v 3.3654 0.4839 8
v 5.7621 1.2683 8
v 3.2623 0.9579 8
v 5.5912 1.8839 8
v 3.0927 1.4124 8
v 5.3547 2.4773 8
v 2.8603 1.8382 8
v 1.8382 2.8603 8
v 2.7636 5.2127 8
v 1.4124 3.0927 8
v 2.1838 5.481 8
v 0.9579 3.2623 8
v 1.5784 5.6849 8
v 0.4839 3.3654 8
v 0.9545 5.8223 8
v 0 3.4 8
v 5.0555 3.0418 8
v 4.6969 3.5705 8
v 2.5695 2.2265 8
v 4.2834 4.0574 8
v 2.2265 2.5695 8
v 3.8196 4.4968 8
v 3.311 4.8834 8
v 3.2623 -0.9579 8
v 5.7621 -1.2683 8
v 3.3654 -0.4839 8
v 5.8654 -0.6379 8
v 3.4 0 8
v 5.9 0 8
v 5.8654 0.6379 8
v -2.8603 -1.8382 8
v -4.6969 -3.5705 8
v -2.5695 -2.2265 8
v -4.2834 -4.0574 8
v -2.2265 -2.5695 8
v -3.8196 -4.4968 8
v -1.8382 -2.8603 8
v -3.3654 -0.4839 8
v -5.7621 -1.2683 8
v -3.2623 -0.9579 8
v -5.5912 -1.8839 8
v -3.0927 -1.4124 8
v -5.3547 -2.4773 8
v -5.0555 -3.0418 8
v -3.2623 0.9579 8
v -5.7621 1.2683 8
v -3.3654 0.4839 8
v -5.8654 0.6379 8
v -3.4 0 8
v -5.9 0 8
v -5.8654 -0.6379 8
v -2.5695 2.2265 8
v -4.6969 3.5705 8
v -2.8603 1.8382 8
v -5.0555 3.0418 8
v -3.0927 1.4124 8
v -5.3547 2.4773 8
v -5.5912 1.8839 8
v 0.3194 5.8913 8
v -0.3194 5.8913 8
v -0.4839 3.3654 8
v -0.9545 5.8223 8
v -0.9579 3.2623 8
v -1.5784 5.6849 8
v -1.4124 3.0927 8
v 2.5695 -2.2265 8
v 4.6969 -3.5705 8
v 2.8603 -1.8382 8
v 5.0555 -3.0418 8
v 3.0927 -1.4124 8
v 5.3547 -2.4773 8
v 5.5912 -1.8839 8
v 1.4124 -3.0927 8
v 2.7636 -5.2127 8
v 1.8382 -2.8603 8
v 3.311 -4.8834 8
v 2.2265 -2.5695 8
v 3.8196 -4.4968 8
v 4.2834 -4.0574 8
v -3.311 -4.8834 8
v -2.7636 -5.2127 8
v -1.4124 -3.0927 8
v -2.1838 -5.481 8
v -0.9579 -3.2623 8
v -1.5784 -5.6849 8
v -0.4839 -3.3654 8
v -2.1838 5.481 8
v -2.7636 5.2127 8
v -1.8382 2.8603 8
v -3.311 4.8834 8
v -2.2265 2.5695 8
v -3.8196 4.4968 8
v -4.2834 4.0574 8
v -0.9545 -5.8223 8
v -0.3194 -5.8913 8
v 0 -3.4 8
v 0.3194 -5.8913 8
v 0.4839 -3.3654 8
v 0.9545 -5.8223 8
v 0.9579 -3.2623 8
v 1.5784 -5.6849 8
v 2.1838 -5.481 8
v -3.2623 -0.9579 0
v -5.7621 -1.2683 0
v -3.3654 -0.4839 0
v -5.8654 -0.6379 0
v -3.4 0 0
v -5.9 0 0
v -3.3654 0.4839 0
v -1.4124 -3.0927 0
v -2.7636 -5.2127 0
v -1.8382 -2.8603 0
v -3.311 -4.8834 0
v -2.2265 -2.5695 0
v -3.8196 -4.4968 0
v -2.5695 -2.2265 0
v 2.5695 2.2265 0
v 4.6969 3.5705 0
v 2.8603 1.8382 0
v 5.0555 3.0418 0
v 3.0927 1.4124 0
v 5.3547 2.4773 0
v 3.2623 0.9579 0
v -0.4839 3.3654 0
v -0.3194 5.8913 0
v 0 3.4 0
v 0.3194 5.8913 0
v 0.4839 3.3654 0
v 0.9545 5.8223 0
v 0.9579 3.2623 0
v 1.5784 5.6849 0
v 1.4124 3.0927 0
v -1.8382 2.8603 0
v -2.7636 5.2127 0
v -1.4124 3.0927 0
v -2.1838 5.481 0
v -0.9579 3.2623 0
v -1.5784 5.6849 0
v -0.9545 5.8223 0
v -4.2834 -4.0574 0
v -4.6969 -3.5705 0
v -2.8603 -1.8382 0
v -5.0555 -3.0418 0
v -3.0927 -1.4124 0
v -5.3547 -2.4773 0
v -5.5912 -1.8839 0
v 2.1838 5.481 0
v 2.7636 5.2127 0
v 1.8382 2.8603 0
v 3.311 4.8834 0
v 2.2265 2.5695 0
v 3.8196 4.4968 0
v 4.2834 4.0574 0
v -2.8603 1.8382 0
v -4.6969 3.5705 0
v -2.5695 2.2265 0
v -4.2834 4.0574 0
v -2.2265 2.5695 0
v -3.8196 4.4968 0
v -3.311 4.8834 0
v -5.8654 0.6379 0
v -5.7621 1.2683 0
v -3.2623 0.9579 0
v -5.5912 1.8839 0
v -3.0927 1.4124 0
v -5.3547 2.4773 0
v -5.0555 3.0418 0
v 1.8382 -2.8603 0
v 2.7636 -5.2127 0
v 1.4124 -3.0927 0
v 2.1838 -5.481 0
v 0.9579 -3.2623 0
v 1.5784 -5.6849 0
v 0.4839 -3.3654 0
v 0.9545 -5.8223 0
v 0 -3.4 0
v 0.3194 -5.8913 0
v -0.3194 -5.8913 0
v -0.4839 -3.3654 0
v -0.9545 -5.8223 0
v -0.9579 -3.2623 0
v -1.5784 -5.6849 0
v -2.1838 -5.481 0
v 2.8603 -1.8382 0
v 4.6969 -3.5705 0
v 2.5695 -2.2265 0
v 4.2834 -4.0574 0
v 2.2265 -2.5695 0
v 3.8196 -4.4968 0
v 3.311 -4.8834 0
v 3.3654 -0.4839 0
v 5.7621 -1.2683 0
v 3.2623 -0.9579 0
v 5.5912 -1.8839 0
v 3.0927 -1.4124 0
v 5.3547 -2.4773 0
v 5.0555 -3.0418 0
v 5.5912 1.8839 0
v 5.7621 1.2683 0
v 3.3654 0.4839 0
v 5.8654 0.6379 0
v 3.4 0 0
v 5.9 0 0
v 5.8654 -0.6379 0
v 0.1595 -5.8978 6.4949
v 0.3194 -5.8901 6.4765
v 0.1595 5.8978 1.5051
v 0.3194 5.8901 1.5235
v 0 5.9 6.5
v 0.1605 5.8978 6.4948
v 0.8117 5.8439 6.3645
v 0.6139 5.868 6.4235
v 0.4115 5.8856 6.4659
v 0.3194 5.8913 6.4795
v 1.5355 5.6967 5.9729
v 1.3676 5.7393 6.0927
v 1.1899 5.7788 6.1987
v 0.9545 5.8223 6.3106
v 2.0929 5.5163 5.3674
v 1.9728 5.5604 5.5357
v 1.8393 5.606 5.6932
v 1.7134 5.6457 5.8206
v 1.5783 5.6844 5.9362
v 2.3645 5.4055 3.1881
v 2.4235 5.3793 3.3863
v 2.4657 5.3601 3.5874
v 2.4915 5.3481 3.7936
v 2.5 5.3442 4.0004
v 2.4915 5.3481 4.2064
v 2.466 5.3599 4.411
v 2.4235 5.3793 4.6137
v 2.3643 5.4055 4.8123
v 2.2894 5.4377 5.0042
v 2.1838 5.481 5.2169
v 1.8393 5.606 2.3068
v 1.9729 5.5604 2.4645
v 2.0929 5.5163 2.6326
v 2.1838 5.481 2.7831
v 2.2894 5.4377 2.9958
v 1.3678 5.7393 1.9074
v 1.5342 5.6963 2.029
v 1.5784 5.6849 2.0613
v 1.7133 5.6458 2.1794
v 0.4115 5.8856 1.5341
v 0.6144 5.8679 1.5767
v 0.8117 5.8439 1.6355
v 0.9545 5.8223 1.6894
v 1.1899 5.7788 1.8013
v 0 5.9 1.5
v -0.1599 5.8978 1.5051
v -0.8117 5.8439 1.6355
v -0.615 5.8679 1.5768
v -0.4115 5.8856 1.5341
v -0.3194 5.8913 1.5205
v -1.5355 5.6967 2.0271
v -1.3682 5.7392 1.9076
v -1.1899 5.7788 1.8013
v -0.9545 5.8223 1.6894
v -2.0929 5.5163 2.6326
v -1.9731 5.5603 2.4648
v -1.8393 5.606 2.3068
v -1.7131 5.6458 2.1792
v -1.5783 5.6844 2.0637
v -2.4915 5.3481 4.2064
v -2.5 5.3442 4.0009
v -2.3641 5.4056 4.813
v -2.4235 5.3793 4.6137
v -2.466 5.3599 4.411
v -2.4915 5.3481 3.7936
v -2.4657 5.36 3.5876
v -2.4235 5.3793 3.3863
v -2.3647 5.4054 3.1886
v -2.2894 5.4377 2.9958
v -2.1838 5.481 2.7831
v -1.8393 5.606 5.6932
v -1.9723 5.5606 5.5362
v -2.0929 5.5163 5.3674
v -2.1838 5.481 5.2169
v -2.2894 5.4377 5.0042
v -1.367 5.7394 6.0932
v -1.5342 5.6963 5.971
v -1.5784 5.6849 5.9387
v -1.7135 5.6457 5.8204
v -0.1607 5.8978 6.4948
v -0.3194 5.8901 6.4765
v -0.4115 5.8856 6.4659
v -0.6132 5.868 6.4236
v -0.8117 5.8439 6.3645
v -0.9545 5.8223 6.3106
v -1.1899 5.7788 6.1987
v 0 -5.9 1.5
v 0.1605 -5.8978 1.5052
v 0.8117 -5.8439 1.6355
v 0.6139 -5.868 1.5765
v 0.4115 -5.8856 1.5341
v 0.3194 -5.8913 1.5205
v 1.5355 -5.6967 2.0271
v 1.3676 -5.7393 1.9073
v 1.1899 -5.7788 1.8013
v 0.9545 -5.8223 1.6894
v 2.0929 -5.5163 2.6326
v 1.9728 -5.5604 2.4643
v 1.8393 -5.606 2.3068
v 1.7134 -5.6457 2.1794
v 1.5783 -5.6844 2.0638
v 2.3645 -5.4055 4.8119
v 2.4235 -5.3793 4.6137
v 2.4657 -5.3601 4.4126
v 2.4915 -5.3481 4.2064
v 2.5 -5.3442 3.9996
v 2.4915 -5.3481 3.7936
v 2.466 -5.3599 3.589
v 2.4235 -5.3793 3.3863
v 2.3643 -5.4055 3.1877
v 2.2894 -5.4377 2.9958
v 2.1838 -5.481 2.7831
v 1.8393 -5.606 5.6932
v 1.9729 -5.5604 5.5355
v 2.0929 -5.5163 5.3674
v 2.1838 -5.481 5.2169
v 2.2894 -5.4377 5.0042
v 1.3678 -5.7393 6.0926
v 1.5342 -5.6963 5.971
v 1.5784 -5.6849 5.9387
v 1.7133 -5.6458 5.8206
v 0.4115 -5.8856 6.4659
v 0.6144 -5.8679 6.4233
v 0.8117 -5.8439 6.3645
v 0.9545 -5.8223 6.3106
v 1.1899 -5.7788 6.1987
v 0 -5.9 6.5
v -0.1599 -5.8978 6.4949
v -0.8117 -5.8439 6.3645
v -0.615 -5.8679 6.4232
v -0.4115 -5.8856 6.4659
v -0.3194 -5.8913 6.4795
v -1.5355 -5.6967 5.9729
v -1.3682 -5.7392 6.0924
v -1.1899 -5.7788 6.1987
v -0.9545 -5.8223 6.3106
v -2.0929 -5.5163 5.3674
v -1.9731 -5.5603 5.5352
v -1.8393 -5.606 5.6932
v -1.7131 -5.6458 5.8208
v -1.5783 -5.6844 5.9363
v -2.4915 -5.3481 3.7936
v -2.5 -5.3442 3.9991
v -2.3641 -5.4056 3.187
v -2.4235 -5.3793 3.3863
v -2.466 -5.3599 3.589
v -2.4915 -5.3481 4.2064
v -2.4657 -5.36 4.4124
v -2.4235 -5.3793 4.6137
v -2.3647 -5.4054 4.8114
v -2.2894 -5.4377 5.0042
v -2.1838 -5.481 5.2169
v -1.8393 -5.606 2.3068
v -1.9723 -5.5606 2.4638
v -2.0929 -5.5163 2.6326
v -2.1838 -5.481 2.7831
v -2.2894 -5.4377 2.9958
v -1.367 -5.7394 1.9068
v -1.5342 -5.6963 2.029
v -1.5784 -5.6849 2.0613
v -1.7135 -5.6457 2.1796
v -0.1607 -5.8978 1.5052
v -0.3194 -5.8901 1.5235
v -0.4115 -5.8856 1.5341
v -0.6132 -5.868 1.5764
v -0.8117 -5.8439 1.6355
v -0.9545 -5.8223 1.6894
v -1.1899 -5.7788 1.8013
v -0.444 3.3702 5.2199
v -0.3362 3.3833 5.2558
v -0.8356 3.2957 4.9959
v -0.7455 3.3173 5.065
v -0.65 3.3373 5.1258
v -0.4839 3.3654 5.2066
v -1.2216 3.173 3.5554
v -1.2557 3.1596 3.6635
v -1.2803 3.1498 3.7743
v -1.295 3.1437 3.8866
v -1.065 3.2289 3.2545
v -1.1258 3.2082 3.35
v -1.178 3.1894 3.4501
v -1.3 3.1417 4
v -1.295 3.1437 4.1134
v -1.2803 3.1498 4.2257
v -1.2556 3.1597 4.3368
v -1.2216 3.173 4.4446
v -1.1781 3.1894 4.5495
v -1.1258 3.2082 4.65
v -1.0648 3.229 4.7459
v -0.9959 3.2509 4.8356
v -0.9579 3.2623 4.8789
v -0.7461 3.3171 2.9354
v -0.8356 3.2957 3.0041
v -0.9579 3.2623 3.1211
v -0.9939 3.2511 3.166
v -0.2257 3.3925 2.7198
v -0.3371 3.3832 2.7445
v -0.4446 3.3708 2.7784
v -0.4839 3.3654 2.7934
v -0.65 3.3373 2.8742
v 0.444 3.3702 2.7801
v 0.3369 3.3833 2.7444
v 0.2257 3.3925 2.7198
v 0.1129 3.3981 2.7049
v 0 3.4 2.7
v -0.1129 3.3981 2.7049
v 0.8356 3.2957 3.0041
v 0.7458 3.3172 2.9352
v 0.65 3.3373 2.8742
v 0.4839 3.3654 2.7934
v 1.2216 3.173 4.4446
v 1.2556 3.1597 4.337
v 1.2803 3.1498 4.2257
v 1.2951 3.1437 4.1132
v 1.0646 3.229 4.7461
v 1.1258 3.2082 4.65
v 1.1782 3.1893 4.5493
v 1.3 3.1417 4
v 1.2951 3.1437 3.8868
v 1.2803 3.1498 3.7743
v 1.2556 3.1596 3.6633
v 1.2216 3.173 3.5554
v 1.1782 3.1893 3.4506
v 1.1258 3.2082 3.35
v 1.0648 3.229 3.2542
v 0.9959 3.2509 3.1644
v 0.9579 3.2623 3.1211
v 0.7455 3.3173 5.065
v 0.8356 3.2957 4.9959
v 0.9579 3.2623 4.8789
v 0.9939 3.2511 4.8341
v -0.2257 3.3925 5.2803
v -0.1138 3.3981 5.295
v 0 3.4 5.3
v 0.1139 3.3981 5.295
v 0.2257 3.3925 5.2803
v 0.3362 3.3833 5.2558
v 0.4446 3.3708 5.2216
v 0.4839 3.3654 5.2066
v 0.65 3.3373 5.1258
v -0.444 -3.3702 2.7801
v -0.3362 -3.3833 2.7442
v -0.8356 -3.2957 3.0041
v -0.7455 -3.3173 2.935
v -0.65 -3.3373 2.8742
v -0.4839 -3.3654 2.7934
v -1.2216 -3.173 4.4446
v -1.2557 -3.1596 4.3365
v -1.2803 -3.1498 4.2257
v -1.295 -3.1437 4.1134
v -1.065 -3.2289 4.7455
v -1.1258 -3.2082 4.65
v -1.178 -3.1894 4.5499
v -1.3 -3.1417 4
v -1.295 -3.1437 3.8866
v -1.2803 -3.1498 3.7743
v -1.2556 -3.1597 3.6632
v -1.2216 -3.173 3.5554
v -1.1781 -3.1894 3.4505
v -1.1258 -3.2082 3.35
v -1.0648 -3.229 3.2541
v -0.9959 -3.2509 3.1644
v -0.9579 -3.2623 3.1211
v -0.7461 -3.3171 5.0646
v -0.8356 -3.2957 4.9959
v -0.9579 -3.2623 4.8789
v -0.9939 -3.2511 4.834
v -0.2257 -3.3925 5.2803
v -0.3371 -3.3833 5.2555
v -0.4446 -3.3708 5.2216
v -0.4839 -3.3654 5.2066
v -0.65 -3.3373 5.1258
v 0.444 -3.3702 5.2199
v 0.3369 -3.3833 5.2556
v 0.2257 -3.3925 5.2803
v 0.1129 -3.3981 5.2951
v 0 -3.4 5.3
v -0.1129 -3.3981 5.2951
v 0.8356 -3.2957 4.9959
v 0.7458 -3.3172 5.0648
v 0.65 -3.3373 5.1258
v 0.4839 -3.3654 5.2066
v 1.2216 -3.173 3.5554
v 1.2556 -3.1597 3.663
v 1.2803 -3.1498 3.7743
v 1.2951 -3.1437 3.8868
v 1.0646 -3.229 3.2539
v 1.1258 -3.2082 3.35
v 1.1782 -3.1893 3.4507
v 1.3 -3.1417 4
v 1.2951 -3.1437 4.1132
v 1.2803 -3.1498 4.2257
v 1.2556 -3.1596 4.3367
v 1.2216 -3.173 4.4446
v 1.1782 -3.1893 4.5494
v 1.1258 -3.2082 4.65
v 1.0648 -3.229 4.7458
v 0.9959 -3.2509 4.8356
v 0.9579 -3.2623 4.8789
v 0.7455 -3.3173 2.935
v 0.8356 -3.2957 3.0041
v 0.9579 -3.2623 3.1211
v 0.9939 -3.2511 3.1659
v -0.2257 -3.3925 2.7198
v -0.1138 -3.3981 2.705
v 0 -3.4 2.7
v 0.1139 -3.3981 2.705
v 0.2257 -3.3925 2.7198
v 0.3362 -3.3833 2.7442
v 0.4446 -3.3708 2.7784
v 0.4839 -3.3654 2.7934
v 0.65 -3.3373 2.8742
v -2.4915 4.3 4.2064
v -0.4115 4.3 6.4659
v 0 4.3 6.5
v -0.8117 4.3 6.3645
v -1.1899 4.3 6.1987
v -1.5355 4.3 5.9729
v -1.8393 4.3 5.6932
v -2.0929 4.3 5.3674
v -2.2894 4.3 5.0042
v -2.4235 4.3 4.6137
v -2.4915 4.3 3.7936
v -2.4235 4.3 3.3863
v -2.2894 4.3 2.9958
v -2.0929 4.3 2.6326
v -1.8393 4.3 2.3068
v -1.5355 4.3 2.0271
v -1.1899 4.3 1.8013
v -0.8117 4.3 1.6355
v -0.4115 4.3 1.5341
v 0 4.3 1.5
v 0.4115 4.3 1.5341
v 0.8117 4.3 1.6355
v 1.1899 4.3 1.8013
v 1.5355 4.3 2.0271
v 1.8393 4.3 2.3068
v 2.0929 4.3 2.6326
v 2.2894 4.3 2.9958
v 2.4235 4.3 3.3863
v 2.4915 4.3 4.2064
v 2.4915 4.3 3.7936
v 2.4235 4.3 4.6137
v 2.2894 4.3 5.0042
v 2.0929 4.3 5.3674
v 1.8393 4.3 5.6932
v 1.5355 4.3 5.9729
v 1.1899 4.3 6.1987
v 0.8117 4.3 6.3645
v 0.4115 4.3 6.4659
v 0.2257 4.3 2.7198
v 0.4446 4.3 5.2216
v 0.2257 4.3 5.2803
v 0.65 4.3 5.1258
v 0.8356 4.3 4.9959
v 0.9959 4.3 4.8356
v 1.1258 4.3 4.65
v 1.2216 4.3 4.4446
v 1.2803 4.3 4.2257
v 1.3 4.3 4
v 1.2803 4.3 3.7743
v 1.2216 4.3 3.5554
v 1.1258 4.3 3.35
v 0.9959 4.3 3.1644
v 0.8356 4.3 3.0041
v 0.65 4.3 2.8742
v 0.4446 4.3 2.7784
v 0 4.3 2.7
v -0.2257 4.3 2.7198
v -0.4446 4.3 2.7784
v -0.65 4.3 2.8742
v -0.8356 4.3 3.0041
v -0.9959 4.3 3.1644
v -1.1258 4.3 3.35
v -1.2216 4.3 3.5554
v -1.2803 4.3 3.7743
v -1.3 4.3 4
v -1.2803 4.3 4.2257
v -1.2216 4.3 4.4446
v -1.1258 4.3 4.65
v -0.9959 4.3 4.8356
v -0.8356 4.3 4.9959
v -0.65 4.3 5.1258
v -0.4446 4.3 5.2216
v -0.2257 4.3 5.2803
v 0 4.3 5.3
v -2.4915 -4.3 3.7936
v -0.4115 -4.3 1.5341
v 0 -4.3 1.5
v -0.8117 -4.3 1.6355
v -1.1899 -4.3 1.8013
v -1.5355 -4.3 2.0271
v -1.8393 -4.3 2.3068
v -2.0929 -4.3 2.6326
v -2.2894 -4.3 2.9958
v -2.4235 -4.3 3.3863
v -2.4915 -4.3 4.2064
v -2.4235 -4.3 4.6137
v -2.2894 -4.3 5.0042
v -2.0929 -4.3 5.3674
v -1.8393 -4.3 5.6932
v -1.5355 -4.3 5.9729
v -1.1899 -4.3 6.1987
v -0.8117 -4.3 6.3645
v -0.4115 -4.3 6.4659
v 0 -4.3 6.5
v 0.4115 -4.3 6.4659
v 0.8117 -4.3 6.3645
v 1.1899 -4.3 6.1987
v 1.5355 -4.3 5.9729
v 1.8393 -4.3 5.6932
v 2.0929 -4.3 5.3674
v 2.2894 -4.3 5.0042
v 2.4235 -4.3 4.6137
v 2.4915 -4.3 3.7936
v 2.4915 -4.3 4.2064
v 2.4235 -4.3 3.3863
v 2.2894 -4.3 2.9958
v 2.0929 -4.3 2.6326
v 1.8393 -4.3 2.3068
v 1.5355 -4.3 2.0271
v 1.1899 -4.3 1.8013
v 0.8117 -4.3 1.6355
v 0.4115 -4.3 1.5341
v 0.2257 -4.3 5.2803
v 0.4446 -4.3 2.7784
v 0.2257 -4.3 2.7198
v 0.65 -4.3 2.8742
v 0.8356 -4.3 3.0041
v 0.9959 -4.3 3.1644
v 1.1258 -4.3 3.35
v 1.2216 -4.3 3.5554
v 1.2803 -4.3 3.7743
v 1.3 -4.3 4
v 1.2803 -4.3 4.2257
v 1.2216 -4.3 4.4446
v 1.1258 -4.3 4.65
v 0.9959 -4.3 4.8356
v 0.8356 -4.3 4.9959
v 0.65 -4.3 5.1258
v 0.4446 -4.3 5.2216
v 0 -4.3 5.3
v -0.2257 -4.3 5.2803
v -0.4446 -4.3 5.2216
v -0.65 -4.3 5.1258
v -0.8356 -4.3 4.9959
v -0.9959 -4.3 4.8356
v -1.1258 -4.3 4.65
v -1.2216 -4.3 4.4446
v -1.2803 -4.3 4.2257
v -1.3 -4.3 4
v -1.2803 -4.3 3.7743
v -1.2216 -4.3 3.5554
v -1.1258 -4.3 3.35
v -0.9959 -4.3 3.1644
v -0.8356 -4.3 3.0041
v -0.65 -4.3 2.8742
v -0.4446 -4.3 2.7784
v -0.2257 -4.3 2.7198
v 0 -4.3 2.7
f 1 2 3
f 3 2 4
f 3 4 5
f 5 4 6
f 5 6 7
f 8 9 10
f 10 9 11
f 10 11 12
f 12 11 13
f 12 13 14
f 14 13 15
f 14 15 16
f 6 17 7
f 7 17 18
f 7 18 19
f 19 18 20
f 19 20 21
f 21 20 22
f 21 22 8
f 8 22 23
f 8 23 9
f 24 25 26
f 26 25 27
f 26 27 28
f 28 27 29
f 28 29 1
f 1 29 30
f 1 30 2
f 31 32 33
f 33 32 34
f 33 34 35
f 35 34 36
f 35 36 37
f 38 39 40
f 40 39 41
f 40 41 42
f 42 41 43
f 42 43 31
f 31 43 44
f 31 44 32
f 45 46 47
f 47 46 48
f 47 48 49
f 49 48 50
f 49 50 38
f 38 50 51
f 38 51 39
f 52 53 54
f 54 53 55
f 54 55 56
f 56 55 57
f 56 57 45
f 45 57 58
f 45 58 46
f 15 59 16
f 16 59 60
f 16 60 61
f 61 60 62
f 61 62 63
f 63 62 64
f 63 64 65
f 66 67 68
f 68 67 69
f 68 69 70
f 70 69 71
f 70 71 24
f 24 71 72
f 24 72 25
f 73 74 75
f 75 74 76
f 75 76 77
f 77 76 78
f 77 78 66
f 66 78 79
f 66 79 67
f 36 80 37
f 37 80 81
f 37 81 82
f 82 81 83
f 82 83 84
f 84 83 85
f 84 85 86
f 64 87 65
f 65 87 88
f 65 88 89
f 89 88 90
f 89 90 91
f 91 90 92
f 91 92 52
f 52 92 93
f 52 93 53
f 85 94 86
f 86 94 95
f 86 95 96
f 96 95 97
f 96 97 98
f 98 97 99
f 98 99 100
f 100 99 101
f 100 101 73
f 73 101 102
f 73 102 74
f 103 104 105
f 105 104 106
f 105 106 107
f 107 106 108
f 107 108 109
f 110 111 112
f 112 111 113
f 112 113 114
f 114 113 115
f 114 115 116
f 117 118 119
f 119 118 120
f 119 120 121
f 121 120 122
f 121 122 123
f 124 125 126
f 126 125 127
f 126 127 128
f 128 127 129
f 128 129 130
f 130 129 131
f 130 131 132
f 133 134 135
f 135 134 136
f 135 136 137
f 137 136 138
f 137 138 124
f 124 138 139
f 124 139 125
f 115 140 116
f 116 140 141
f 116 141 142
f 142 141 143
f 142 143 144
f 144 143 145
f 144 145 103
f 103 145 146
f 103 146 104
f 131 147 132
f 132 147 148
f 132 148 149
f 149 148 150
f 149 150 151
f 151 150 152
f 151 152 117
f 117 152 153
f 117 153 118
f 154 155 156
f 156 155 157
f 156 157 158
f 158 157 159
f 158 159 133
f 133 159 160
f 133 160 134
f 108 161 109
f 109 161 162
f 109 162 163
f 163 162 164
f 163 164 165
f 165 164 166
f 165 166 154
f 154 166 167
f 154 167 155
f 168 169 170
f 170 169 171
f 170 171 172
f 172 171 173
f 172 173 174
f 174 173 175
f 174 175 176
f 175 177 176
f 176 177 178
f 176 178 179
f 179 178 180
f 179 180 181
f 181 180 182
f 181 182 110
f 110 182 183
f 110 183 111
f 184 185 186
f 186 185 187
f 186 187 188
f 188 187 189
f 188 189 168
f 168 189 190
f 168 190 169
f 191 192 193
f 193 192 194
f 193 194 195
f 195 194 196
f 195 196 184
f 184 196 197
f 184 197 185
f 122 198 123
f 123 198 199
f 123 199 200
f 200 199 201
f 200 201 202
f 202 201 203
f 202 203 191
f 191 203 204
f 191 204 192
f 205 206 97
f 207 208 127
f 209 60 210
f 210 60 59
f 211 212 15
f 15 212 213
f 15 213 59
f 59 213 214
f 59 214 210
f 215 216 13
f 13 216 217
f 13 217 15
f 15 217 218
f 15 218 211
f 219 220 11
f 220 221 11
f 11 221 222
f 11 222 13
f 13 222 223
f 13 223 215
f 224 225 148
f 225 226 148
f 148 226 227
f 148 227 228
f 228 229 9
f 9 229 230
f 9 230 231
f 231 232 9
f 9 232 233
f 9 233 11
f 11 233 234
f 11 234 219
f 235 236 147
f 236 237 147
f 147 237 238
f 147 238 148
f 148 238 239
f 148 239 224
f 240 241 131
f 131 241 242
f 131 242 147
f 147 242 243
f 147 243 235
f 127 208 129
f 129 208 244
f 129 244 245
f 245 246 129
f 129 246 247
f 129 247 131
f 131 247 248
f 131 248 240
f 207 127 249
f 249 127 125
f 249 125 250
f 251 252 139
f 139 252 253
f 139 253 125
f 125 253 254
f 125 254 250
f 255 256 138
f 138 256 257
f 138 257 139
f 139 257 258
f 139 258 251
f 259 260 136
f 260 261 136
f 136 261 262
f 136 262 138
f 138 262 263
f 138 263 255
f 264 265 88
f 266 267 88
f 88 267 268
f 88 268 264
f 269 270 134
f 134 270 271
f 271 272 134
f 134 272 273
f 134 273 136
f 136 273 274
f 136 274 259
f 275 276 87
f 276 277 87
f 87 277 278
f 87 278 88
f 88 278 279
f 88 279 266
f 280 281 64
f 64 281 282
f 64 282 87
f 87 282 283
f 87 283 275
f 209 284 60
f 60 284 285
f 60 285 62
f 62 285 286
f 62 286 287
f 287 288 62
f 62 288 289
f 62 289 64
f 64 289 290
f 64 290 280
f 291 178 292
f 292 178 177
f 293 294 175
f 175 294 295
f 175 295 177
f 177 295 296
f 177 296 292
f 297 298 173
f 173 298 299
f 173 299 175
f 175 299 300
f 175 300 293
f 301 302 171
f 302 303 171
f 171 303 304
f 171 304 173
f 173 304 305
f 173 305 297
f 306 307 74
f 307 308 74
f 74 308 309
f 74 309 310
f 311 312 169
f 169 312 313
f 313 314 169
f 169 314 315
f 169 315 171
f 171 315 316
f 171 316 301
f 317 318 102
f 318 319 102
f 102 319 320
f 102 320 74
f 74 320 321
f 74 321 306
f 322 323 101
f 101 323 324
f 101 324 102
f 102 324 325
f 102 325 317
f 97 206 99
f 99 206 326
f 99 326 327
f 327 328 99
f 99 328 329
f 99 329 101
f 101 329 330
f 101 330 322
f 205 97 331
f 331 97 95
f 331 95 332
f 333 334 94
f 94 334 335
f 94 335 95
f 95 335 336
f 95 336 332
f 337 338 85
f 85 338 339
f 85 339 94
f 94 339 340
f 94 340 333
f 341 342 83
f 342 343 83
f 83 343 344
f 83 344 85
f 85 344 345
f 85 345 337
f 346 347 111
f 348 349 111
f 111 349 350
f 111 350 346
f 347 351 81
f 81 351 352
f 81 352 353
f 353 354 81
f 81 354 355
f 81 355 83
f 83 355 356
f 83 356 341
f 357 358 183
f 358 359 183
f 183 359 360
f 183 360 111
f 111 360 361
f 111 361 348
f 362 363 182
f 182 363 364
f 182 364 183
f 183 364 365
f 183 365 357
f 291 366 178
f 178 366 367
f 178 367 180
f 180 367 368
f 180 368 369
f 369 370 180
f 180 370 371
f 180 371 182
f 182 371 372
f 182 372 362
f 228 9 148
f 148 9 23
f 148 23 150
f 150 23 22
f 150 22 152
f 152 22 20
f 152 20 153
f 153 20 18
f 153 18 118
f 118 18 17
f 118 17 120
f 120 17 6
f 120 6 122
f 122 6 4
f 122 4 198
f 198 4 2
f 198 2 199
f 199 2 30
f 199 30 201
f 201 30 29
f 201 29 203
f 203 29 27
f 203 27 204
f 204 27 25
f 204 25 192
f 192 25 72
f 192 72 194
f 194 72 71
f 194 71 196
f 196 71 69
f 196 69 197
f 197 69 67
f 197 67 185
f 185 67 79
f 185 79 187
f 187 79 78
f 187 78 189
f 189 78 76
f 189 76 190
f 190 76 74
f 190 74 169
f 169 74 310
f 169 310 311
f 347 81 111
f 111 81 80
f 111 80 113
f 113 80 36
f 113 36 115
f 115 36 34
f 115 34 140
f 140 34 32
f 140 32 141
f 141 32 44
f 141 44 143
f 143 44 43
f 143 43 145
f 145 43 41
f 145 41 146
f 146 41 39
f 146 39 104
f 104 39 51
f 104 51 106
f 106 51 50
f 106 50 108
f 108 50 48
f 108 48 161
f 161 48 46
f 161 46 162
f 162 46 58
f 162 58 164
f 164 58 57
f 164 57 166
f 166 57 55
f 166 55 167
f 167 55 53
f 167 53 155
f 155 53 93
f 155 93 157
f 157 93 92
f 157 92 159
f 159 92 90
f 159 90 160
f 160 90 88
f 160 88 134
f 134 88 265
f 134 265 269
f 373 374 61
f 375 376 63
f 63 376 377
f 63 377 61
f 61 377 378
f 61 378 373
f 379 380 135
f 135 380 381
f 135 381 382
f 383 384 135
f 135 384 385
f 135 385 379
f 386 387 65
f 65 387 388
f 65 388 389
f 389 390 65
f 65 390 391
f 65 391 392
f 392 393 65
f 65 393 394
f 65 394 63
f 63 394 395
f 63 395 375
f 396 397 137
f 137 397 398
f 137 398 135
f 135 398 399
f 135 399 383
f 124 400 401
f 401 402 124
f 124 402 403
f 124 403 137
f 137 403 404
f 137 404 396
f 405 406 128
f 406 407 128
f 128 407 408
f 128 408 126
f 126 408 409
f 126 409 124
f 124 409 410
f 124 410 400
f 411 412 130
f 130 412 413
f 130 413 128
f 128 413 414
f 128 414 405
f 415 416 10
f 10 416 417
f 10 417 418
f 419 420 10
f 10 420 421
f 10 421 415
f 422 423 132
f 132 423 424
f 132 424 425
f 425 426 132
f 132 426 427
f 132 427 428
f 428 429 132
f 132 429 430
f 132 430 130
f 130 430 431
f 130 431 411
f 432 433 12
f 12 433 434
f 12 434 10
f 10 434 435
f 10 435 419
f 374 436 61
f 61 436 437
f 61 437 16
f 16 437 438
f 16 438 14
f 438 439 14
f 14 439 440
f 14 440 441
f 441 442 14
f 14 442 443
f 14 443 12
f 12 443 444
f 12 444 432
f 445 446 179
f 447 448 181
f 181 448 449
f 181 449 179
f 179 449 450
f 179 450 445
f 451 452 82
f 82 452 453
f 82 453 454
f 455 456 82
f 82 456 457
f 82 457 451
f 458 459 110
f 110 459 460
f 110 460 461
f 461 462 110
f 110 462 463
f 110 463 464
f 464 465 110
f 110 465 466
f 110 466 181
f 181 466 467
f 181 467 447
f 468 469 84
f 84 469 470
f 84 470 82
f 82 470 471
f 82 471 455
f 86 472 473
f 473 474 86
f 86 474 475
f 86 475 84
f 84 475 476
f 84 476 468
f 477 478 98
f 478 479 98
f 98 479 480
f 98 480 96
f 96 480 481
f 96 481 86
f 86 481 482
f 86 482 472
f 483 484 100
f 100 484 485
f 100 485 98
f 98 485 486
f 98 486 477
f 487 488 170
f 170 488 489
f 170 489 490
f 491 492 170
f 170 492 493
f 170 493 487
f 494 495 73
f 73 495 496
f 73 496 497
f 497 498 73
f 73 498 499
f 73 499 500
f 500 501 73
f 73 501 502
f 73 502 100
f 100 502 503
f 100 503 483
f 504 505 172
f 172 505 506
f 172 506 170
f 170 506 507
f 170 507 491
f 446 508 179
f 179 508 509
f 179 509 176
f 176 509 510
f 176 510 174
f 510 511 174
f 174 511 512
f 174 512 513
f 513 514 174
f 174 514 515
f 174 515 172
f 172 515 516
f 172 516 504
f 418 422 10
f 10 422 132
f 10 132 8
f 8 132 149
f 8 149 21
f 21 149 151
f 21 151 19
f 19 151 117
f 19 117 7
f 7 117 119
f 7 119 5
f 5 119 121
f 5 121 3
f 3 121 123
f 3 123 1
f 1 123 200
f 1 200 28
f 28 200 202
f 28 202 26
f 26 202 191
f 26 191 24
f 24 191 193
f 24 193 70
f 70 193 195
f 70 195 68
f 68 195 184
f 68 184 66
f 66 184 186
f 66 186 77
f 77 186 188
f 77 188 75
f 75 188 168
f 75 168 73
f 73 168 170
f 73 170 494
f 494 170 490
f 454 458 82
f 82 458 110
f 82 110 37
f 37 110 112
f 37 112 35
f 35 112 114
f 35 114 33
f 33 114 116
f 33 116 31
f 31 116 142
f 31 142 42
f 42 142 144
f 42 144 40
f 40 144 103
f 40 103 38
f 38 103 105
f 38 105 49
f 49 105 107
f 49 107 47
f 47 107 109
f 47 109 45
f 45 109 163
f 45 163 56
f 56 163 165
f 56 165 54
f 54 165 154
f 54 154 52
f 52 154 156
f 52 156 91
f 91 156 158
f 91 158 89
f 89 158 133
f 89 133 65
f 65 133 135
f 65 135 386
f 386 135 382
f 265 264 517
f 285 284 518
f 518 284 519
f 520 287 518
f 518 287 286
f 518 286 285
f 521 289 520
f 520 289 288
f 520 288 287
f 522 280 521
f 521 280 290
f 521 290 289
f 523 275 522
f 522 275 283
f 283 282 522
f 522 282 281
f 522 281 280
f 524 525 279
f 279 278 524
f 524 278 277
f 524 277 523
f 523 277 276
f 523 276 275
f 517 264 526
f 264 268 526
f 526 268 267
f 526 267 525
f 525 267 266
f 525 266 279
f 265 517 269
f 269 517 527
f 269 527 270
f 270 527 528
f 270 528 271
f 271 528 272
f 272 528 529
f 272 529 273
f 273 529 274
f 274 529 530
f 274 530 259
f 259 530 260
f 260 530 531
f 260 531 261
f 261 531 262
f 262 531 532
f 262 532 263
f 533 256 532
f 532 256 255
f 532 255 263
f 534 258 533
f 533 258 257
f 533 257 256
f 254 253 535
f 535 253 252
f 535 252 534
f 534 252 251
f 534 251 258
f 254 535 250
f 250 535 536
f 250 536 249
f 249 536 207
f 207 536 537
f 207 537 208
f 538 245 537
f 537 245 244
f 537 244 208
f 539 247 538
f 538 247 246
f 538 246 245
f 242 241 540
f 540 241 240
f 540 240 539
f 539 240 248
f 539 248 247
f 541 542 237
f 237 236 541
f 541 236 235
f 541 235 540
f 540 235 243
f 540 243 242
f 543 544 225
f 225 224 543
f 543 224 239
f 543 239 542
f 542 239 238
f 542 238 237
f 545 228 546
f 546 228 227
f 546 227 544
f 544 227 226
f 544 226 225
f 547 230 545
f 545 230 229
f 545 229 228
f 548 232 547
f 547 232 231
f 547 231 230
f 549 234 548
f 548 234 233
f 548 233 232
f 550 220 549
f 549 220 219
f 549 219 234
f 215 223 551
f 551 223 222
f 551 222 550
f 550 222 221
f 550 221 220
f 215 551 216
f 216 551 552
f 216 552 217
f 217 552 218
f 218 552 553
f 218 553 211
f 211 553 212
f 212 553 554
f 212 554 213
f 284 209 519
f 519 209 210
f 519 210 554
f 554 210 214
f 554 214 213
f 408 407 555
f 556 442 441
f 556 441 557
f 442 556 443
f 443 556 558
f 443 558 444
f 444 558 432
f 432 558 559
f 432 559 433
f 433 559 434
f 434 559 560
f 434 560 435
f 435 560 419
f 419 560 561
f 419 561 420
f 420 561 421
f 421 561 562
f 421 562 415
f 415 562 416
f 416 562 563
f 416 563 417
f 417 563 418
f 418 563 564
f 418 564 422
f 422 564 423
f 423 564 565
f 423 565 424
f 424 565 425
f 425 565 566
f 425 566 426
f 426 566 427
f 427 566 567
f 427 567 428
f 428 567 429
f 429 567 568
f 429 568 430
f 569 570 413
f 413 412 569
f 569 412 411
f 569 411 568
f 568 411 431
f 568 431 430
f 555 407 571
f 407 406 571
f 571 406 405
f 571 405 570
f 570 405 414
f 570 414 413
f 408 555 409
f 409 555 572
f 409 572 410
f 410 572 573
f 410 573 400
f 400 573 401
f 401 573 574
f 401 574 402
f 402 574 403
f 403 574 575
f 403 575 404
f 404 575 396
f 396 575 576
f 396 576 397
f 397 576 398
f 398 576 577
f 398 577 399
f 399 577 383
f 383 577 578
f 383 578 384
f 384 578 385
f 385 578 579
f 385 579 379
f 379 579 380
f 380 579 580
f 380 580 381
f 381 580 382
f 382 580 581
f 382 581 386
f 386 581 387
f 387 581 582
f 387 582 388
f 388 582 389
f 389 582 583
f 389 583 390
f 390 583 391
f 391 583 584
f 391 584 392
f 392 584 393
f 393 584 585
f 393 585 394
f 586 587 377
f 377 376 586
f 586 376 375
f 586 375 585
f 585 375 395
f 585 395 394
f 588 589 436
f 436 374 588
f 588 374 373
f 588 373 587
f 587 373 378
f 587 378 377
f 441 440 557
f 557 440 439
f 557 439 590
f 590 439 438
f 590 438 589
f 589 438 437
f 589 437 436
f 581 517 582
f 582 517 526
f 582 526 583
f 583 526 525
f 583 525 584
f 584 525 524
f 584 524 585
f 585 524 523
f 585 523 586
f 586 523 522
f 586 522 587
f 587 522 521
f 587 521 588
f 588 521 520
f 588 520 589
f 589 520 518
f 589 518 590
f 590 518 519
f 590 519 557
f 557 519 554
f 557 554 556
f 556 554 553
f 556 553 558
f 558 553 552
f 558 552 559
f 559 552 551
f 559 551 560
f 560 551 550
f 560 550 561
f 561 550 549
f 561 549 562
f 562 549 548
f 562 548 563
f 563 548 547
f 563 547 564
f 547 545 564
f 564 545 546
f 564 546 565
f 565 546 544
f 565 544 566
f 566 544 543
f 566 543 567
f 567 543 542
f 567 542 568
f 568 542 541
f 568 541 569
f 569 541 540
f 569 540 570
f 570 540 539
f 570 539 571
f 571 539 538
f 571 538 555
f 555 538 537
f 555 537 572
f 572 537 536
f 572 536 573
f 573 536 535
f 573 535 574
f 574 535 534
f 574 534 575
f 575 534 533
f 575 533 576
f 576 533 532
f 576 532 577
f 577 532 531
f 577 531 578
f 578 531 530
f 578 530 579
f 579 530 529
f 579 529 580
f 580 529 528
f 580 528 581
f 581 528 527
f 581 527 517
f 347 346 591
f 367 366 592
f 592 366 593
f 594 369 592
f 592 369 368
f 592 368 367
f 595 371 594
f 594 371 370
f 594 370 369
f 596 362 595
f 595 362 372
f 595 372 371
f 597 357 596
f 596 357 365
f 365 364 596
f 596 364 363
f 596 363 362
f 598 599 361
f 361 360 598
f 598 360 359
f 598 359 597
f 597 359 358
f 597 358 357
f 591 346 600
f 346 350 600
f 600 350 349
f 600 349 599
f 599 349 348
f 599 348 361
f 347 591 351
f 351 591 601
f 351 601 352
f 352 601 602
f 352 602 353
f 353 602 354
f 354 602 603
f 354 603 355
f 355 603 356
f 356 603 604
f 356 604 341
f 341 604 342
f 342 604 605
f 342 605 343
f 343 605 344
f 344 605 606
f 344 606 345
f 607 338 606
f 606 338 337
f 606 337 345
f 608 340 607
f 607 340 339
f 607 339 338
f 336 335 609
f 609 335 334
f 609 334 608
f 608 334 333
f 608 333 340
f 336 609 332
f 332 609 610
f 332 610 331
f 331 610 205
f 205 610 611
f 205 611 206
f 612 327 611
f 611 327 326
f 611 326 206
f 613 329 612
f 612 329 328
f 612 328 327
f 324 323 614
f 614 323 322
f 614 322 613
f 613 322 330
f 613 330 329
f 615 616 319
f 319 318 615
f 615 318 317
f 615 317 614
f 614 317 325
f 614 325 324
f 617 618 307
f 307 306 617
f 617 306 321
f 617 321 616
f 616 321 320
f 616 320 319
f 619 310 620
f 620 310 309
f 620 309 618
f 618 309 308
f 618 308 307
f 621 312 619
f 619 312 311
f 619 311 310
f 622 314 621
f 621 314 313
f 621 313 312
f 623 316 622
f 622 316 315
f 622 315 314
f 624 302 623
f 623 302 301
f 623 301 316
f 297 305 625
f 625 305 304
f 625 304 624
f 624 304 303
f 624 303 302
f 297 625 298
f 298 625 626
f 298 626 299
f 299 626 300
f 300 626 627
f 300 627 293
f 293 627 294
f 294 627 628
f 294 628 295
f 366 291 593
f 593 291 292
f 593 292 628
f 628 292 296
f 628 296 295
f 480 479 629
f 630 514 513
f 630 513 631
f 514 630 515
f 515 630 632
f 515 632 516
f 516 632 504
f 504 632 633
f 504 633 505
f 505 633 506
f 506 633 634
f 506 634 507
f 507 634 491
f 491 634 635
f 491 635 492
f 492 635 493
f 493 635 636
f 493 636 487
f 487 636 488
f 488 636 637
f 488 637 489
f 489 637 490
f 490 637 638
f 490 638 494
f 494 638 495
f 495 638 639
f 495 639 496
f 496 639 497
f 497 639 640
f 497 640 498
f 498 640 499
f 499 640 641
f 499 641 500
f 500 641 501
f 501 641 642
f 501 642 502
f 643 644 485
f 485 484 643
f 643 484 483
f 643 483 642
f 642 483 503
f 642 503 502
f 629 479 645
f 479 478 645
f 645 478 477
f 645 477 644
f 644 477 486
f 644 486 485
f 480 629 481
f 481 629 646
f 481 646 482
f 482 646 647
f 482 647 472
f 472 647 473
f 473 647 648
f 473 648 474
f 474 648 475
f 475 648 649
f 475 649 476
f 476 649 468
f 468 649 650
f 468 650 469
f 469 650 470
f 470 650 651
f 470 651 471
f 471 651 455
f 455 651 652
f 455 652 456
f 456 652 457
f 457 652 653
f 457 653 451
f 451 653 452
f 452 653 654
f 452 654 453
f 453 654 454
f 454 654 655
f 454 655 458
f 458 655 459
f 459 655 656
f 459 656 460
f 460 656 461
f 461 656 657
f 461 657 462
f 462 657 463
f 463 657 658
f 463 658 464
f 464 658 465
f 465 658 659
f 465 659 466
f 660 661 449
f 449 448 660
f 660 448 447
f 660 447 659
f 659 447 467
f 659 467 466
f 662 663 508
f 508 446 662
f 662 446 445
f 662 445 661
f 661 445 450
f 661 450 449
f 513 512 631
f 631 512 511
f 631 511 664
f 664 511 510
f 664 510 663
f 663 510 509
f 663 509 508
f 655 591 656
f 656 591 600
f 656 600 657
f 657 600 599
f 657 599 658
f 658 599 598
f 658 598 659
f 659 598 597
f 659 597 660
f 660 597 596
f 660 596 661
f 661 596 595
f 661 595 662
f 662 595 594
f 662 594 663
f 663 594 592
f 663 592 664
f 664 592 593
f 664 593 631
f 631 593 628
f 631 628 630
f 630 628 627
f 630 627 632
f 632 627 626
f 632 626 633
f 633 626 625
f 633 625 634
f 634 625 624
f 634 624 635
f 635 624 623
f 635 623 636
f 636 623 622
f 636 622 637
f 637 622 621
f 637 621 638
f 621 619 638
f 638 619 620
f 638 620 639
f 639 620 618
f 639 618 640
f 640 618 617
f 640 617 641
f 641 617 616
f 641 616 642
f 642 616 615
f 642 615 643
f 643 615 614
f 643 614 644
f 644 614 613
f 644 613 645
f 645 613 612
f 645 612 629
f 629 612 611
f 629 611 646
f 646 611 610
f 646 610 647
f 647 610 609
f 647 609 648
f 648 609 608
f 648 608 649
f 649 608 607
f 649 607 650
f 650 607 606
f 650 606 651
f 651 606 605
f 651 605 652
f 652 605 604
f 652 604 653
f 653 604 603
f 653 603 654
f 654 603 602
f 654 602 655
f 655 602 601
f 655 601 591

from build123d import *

# Parameters (mm, degrees)
SKETCH_1_R               = 5.9
SKETCH_1_R_2             = 3.4
EXTRUDE_1_DEPTH          = 8
PATTERN_CIRCULAR_1_COUNT = 2


with BuildPart() as part:
    # 스케치1 → 보스-돌출1 (new body)
    with BuildSketch(Plane.XY):
        Circle(SKETCH_1_R)
        Circle(SKETCH_1_R_2, mode=Mode.SUBTRACT)
    extrude(amount=EXTRUDE_1_DEPTH)

    # 스케치6 → M2 남비 머리 나사용 카운터보어3 (revolve, cut)
    with BuildSketch(Plane(origin=(0, 5.9, 4), x_dir=(0, 0, 1), z_dir=(1, 0, 0))):
        Polygon((0, 0), (0, 5.781118805), (1.3, 5), (1.3, 1.6), (2.5, 1.6), (2.5, 0), align=None)
    hole_wizard_m2_3 = revolve(axis=Axis((0, 12.25, 4), (0, -1, 0)), mode=Mode.SUBTRACT)

    # 원형 패턴1: M2 남비 머리 나사용 카운터보어3 ×2 about axis
    pattern_circular_1_axis = Axis((0, 0, 8), (0, 0, 1))
    for i in range(1, PATTERN_CIRCULAR_1_COUNT):
        add(hole_wizard_m2_3.rotate(pattern_circular_1_axis, i * 360 / PATTERN_CIRCULAR_1_COUNT), mode=Mode.SUBTRACT)


solid = part.part
